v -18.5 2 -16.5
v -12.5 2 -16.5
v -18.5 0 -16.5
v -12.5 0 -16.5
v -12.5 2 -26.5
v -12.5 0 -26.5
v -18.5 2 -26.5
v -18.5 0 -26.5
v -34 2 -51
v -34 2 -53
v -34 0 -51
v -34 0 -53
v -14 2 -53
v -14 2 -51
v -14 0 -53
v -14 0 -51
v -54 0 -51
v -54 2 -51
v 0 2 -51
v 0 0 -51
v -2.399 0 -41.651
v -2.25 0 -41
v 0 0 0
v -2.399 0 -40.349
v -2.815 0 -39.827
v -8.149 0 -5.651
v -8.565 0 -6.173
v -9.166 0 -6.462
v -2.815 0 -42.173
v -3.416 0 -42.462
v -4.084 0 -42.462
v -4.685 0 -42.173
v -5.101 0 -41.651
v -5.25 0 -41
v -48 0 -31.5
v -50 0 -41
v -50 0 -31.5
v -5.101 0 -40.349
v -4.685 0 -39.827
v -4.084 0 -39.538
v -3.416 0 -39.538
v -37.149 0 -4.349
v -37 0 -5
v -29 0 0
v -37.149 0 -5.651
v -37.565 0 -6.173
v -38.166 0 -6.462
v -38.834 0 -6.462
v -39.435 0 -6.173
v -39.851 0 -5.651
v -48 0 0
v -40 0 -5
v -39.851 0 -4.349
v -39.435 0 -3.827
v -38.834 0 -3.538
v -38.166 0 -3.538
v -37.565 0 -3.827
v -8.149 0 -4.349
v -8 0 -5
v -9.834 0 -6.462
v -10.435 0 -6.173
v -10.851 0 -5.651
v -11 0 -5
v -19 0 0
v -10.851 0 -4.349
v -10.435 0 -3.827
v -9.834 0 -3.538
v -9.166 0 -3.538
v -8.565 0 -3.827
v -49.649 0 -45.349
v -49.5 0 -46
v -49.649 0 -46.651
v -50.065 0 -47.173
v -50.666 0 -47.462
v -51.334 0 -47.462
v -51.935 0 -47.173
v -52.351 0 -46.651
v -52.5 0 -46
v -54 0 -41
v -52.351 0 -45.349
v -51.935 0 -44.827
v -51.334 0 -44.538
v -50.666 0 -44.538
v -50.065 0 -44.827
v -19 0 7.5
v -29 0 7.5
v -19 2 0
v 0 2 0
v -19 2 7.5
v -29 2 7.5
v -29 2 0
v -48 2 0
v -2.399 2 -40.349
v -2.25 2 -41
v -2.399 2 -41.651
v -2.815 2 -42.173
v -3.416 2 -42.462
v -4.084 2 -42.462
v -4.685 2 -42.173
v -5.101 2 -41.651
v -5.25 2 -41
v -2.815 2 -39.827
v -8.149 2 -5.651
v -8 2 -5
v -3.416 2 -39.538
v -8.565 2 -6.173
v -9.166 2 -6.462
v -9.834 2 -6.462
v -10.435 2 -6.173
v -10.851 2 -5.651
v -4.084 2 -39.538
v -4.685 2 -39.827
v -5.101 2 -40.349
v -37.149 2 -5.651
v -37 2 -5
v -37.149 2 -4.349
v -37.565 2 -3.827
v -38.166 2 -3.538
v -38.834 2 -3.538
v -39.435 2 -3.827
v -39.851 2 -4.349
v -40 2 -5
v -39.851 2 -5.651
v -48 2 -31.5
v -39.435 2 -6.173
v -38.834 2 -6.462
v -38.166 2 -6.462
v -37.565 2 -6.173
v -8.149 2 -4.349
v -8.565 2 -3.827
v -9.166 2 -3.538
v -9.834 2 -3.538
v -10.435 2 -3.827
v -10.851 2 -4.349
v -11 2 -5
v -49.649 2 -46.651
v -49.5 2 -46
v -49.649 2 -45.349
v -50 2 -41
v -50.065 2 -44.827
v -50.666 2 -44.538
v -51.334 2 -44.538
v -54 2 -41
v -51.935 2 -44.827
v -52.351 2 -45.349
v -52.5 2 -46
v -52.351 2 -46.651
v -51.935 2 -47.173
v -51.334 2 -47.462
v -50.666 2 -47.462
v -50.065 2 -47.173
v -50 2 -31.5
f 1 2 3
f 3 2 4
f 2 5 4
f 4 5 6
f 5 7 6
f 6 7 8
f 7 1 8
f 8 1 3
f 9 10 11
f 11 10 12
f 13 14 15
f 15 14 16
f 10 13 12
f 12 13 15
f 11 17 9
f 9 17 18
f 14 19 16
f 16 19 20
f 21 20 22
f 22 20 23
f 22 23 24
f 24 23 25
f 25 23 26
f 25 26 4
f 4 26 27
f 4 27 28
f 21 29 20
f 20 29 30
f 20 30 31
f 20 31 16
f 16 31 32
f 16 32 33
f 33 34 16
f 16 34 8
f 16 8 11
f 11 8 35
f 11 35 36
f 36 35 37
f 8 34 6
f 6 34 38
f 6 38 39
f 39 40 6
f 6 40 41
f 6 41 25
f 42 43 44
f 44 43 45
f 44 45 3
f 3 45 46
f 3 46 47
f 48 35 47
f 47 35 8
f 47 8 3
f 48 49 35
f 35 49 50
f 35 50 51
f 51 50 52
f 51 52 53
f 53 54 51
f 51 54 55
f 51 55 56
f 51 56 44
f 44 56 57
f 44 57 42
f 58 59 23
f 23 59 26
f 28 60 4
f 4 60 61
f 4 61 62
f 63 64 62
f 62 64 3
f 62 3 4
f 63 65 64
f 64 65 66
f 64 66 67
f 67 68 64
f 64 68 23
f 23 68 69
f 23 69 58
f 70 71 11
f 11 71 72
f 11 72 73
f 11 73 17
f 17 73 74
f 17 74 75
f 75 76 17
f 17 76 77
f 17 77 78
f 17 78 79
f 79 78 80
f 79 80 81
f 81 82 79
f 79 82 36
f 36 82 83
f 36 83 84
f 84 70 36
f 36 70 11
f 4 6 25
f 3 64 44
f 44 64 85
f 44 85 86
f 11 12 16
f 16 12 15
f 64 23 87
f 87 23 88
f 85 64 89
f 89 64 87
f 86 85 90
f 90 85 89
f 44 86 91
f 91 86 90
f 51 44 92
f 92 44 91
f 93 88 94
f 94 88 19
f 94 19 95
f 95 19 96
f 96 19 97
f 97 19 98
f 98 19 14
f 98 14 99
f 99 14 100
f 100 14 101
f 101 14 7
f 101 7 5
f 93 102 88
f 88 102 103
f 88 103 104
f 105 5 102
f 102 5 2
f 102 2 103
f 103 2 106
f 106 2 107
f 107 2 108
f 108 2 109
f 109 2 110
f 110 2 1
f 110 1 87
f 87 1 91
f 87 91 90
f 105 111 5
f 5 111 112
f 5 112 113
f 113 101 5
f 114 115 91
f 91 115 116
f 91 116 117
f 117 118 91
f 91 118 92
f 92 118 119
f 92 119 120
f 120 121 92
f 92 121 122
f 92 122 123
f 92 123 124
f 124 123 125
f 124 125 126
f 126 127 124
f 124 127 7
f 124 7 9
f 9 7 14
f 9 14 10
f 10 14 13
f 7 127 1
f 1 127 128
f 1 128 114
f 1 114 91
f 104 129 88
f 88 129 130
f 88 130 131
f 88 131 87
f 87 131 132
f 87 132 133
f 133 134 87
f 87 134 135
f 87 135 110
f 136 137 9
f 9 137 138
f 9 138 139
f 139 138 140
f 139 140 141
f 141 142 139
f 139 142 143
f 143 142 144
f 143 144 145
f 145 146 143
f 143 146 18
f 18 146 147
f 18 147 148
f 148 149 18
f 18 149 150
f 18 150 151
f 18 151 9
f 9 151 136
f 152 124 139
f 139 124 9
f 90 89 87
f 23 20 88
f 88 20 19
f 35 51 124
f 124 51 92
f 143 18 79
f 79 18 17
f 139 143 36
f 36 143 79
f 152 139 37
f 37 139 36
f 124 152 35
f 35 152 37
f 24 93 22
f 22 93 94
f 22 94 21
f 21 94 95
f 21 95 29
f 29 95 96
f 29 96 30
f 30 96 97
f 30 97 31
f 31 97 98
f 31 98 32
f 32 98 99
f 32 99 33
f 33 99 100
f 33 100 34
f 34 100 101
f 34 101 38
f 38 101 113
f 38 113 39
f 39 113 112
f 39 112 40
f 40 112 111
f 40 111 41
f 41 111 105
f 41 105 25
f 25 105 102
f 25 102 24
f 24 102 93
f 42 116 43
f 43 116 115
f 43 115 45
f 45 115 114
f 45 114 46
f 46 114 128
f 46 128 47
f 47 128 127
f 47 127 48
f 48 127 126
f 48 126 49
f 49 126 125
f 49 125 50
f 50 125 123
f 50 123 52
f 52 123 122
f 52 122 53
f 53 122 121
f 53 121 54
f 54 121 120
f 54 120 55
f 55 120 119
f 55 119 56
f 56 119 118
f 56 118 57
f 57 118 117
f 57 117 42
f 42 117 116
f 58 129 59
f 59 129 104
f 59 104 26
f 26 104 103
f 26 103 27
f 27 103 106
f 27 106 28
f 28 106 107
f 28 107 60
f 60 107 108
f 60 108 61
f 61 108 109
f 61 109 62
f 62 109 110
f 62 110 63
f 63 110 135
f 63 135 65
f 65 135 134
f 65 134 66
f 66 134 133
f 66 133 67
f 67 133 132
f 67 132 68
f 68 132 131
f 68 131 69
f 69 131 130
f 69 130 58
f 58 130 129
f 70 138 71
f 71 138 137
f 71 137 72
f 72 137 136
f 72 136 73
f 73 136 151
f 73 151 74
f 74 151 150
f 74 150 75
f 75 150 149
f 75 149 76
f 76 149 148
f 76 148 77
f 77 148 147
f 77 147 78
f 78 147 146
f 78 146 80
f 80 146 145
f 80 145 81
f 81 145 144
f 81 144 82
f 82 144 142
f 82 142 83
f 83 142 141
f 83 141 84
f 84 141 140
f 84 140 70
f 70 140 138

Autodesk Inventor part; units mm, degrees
ref_plane "YZ Plane" through (0, 0, 0) normal (1, 0, 0) x (0, 1, 0)
ref_plane "XZ Plane" through (0, 0, 0) normal (0, 1, 0) x (-1, 0, 0)
ref_plane "XY Plane" through (0, 0, 0) normal (0, 0, 1) x (1, 0, 0)
sketch "Boceto1" plane through (0, 0, 0) normal (0, 1, 0) x (-1, 0, 0)
  line L0 (48, 0) -> (48, -51)
  line L1 (48, -51) -> (0, -51)
  line L2 (0, -51) -> (0, 0)
  line L3 (24, 7.5) -> (29, 7.5)
  line L4 (29, 7.5) -> (29, 0)
  line L5 (24, 7.5) -> (19, 7.5)
  line L6 (19, 7.5) -> (19, 0)
  line L7 (24, 7.5) -> (24, -1.25)
  circle A0 centre (24, -1.25) radius 1.5
  line L8 (29, 0) -> (48, 0)
  line L9 (19, 0) -> (0, 0)
  dimension "d0" = 48
  dimension "d1" = 51
  dimension "d3" = 5
  dimension "d4" = 5
  dimension "d5" = 8.75
  dimension "d6" = 3
extrude "Extrusión1" add sketch "Boceto1" along normal blind 2
ref_plane "Plano de trabajo1" through (-48, -25, -47.5) normal (0, -1, 0) x (1, 0, 0)
sketch "Boceto4" plane through (0, 2, 0) normal (0, 1, 0) x (1, 0, 0)
  line L0 (0, 51) -> (-48, 51) projected
  line L1 (-24, 51) -> (-24, 53)
  line L2 (-24, 53) -> (-34, 53)
  line L3 (-34, 53) -> (-34, 51)
  line L4 (-34, 51) -> (-14, 51)
  line L5 (-14, 51) -> (-14, 53)
  line L6 (-14, 53) -> (-24, 53)
  point P0 (0, 0)
  dimension "d18" = 2
  dimension "d19" = 10
  dimension "d20" = 20
extrude "Extrusión4" add sketch "Boceto4" against normal blind 2
sketch "Boceto6" plane through (0, 2, 0) normal (0, 1, 0) x (1, 0, 0)
  line L0 (-48, 47.5) -> (-48, 31.5) projected
  line L1 (-48, 47.5) -> (-18.5, 47.5)
  line L2 (-18.5, 47.5) -> (-18.5, 26.5)
  line L3 (-18.5, 26.5) -> (-18.5, 16.5)
  line L4 (-18.5, 16.5) -> (-12.5, 16.5)
  line L5 (-12.5, 16.5) -> (-12.5, 26.5)
  line L6 (-12.5, 26.5) -> (-18.5, 26.5)
  point P0 (0, 0)
  dimension "d26" = 29.5
  dimension "d27" = 21
  dimension "d28" = 10
  dimension "d29" = 6
extrude "Extrusión6" cut sketch "Boceto6" against normal blind 2
sketch "Boceto7" plane through (0, 2, 0) normal (0, 1, 0) x (1, 0, 0)
  circle A0 centre (-24, 1.25) radius 1.5 projected
  circle A1 centre (-24, 1.25) radius 1.5
  point P0 (0, 0)
extrude "Extrusión7" add sketch "Boceto7" against normal blind 2
sketch "Boceto8" plane through (0, 2, 0) normal (0, 1, 0) x (1, 0, 0)
  line L0 (-48, 51) -> (-48, 0) projected
  line L1 (-48, 51) -> (-48, 31.5)
  line L2 (-48, 31.5) -> (-50, 31.5)
  line L3 (-50, 31.5) -> (-50, 41)
  line L4 (-50, 41) -> (-54, 41)
  line L5 (-54, 41) -> (-54, 51)
  line L6 (-54, 51) -> (-48, 51)
  point P0 (0, 0)
  dimension "d34" = 19.5
  dimension "d35" = 2
  dimension "d36" = 9.5
  dimension "d37" = 4
extrude "Extrusión8" add sketch "Boceto8" against normal blind 2
sketch "Boceto9" plane through (0, 2, 0) normal (0, 1, 0) x (1, 0, 0)
  line L0 (-48, 0) -> (-29, 0) projected
  line L1 (-48, 0) -> (-48, 5)
  line L2 (-48, 31.5) -> (-48, 0) projected
  line L3 (-48, 5) -> (-38.5, 5)
  line L4 (-48, 5) -> (-9.5, 5)
  circle A0 centre (-38.5, 5) radius 1.5
  circle A1 centre (-9.5, 5) radius 1.5
  line L5 (0, 51) -> (-14, 51) projected
  line L6 (0, 51) -> (0, 41)
  line L7 (0, 0) -> (0, 51) projected
  line L8 (0, 41) -> (-3.75, 41)
  circle A2 centre (-3.75, 41) radius 1.5
  line L9 (-34, 51) -> (-54, 51) projected
  line L10 (-54, 51) -> (-51, 51)
  line L11 (-51, 51) -> (-51, 46)
  circle A3 centre (-51, 46) radius 1.5
  dimension "d40" = 5
  dimension "d41" = 9.5
  dimension "d42" = 38.5
  dimension "d43" = 3
  dimension "d44" = 3
  dimension "d45" = 10
  dimension "d46" = 3.75
  dimension "d47" = 3
  dimension "d48" = 3
  dimension "d49" = 3
extrude "Extrusión9" cut sketch "Boceto9" against normal blind 2
properties part number "arm_2_case"
